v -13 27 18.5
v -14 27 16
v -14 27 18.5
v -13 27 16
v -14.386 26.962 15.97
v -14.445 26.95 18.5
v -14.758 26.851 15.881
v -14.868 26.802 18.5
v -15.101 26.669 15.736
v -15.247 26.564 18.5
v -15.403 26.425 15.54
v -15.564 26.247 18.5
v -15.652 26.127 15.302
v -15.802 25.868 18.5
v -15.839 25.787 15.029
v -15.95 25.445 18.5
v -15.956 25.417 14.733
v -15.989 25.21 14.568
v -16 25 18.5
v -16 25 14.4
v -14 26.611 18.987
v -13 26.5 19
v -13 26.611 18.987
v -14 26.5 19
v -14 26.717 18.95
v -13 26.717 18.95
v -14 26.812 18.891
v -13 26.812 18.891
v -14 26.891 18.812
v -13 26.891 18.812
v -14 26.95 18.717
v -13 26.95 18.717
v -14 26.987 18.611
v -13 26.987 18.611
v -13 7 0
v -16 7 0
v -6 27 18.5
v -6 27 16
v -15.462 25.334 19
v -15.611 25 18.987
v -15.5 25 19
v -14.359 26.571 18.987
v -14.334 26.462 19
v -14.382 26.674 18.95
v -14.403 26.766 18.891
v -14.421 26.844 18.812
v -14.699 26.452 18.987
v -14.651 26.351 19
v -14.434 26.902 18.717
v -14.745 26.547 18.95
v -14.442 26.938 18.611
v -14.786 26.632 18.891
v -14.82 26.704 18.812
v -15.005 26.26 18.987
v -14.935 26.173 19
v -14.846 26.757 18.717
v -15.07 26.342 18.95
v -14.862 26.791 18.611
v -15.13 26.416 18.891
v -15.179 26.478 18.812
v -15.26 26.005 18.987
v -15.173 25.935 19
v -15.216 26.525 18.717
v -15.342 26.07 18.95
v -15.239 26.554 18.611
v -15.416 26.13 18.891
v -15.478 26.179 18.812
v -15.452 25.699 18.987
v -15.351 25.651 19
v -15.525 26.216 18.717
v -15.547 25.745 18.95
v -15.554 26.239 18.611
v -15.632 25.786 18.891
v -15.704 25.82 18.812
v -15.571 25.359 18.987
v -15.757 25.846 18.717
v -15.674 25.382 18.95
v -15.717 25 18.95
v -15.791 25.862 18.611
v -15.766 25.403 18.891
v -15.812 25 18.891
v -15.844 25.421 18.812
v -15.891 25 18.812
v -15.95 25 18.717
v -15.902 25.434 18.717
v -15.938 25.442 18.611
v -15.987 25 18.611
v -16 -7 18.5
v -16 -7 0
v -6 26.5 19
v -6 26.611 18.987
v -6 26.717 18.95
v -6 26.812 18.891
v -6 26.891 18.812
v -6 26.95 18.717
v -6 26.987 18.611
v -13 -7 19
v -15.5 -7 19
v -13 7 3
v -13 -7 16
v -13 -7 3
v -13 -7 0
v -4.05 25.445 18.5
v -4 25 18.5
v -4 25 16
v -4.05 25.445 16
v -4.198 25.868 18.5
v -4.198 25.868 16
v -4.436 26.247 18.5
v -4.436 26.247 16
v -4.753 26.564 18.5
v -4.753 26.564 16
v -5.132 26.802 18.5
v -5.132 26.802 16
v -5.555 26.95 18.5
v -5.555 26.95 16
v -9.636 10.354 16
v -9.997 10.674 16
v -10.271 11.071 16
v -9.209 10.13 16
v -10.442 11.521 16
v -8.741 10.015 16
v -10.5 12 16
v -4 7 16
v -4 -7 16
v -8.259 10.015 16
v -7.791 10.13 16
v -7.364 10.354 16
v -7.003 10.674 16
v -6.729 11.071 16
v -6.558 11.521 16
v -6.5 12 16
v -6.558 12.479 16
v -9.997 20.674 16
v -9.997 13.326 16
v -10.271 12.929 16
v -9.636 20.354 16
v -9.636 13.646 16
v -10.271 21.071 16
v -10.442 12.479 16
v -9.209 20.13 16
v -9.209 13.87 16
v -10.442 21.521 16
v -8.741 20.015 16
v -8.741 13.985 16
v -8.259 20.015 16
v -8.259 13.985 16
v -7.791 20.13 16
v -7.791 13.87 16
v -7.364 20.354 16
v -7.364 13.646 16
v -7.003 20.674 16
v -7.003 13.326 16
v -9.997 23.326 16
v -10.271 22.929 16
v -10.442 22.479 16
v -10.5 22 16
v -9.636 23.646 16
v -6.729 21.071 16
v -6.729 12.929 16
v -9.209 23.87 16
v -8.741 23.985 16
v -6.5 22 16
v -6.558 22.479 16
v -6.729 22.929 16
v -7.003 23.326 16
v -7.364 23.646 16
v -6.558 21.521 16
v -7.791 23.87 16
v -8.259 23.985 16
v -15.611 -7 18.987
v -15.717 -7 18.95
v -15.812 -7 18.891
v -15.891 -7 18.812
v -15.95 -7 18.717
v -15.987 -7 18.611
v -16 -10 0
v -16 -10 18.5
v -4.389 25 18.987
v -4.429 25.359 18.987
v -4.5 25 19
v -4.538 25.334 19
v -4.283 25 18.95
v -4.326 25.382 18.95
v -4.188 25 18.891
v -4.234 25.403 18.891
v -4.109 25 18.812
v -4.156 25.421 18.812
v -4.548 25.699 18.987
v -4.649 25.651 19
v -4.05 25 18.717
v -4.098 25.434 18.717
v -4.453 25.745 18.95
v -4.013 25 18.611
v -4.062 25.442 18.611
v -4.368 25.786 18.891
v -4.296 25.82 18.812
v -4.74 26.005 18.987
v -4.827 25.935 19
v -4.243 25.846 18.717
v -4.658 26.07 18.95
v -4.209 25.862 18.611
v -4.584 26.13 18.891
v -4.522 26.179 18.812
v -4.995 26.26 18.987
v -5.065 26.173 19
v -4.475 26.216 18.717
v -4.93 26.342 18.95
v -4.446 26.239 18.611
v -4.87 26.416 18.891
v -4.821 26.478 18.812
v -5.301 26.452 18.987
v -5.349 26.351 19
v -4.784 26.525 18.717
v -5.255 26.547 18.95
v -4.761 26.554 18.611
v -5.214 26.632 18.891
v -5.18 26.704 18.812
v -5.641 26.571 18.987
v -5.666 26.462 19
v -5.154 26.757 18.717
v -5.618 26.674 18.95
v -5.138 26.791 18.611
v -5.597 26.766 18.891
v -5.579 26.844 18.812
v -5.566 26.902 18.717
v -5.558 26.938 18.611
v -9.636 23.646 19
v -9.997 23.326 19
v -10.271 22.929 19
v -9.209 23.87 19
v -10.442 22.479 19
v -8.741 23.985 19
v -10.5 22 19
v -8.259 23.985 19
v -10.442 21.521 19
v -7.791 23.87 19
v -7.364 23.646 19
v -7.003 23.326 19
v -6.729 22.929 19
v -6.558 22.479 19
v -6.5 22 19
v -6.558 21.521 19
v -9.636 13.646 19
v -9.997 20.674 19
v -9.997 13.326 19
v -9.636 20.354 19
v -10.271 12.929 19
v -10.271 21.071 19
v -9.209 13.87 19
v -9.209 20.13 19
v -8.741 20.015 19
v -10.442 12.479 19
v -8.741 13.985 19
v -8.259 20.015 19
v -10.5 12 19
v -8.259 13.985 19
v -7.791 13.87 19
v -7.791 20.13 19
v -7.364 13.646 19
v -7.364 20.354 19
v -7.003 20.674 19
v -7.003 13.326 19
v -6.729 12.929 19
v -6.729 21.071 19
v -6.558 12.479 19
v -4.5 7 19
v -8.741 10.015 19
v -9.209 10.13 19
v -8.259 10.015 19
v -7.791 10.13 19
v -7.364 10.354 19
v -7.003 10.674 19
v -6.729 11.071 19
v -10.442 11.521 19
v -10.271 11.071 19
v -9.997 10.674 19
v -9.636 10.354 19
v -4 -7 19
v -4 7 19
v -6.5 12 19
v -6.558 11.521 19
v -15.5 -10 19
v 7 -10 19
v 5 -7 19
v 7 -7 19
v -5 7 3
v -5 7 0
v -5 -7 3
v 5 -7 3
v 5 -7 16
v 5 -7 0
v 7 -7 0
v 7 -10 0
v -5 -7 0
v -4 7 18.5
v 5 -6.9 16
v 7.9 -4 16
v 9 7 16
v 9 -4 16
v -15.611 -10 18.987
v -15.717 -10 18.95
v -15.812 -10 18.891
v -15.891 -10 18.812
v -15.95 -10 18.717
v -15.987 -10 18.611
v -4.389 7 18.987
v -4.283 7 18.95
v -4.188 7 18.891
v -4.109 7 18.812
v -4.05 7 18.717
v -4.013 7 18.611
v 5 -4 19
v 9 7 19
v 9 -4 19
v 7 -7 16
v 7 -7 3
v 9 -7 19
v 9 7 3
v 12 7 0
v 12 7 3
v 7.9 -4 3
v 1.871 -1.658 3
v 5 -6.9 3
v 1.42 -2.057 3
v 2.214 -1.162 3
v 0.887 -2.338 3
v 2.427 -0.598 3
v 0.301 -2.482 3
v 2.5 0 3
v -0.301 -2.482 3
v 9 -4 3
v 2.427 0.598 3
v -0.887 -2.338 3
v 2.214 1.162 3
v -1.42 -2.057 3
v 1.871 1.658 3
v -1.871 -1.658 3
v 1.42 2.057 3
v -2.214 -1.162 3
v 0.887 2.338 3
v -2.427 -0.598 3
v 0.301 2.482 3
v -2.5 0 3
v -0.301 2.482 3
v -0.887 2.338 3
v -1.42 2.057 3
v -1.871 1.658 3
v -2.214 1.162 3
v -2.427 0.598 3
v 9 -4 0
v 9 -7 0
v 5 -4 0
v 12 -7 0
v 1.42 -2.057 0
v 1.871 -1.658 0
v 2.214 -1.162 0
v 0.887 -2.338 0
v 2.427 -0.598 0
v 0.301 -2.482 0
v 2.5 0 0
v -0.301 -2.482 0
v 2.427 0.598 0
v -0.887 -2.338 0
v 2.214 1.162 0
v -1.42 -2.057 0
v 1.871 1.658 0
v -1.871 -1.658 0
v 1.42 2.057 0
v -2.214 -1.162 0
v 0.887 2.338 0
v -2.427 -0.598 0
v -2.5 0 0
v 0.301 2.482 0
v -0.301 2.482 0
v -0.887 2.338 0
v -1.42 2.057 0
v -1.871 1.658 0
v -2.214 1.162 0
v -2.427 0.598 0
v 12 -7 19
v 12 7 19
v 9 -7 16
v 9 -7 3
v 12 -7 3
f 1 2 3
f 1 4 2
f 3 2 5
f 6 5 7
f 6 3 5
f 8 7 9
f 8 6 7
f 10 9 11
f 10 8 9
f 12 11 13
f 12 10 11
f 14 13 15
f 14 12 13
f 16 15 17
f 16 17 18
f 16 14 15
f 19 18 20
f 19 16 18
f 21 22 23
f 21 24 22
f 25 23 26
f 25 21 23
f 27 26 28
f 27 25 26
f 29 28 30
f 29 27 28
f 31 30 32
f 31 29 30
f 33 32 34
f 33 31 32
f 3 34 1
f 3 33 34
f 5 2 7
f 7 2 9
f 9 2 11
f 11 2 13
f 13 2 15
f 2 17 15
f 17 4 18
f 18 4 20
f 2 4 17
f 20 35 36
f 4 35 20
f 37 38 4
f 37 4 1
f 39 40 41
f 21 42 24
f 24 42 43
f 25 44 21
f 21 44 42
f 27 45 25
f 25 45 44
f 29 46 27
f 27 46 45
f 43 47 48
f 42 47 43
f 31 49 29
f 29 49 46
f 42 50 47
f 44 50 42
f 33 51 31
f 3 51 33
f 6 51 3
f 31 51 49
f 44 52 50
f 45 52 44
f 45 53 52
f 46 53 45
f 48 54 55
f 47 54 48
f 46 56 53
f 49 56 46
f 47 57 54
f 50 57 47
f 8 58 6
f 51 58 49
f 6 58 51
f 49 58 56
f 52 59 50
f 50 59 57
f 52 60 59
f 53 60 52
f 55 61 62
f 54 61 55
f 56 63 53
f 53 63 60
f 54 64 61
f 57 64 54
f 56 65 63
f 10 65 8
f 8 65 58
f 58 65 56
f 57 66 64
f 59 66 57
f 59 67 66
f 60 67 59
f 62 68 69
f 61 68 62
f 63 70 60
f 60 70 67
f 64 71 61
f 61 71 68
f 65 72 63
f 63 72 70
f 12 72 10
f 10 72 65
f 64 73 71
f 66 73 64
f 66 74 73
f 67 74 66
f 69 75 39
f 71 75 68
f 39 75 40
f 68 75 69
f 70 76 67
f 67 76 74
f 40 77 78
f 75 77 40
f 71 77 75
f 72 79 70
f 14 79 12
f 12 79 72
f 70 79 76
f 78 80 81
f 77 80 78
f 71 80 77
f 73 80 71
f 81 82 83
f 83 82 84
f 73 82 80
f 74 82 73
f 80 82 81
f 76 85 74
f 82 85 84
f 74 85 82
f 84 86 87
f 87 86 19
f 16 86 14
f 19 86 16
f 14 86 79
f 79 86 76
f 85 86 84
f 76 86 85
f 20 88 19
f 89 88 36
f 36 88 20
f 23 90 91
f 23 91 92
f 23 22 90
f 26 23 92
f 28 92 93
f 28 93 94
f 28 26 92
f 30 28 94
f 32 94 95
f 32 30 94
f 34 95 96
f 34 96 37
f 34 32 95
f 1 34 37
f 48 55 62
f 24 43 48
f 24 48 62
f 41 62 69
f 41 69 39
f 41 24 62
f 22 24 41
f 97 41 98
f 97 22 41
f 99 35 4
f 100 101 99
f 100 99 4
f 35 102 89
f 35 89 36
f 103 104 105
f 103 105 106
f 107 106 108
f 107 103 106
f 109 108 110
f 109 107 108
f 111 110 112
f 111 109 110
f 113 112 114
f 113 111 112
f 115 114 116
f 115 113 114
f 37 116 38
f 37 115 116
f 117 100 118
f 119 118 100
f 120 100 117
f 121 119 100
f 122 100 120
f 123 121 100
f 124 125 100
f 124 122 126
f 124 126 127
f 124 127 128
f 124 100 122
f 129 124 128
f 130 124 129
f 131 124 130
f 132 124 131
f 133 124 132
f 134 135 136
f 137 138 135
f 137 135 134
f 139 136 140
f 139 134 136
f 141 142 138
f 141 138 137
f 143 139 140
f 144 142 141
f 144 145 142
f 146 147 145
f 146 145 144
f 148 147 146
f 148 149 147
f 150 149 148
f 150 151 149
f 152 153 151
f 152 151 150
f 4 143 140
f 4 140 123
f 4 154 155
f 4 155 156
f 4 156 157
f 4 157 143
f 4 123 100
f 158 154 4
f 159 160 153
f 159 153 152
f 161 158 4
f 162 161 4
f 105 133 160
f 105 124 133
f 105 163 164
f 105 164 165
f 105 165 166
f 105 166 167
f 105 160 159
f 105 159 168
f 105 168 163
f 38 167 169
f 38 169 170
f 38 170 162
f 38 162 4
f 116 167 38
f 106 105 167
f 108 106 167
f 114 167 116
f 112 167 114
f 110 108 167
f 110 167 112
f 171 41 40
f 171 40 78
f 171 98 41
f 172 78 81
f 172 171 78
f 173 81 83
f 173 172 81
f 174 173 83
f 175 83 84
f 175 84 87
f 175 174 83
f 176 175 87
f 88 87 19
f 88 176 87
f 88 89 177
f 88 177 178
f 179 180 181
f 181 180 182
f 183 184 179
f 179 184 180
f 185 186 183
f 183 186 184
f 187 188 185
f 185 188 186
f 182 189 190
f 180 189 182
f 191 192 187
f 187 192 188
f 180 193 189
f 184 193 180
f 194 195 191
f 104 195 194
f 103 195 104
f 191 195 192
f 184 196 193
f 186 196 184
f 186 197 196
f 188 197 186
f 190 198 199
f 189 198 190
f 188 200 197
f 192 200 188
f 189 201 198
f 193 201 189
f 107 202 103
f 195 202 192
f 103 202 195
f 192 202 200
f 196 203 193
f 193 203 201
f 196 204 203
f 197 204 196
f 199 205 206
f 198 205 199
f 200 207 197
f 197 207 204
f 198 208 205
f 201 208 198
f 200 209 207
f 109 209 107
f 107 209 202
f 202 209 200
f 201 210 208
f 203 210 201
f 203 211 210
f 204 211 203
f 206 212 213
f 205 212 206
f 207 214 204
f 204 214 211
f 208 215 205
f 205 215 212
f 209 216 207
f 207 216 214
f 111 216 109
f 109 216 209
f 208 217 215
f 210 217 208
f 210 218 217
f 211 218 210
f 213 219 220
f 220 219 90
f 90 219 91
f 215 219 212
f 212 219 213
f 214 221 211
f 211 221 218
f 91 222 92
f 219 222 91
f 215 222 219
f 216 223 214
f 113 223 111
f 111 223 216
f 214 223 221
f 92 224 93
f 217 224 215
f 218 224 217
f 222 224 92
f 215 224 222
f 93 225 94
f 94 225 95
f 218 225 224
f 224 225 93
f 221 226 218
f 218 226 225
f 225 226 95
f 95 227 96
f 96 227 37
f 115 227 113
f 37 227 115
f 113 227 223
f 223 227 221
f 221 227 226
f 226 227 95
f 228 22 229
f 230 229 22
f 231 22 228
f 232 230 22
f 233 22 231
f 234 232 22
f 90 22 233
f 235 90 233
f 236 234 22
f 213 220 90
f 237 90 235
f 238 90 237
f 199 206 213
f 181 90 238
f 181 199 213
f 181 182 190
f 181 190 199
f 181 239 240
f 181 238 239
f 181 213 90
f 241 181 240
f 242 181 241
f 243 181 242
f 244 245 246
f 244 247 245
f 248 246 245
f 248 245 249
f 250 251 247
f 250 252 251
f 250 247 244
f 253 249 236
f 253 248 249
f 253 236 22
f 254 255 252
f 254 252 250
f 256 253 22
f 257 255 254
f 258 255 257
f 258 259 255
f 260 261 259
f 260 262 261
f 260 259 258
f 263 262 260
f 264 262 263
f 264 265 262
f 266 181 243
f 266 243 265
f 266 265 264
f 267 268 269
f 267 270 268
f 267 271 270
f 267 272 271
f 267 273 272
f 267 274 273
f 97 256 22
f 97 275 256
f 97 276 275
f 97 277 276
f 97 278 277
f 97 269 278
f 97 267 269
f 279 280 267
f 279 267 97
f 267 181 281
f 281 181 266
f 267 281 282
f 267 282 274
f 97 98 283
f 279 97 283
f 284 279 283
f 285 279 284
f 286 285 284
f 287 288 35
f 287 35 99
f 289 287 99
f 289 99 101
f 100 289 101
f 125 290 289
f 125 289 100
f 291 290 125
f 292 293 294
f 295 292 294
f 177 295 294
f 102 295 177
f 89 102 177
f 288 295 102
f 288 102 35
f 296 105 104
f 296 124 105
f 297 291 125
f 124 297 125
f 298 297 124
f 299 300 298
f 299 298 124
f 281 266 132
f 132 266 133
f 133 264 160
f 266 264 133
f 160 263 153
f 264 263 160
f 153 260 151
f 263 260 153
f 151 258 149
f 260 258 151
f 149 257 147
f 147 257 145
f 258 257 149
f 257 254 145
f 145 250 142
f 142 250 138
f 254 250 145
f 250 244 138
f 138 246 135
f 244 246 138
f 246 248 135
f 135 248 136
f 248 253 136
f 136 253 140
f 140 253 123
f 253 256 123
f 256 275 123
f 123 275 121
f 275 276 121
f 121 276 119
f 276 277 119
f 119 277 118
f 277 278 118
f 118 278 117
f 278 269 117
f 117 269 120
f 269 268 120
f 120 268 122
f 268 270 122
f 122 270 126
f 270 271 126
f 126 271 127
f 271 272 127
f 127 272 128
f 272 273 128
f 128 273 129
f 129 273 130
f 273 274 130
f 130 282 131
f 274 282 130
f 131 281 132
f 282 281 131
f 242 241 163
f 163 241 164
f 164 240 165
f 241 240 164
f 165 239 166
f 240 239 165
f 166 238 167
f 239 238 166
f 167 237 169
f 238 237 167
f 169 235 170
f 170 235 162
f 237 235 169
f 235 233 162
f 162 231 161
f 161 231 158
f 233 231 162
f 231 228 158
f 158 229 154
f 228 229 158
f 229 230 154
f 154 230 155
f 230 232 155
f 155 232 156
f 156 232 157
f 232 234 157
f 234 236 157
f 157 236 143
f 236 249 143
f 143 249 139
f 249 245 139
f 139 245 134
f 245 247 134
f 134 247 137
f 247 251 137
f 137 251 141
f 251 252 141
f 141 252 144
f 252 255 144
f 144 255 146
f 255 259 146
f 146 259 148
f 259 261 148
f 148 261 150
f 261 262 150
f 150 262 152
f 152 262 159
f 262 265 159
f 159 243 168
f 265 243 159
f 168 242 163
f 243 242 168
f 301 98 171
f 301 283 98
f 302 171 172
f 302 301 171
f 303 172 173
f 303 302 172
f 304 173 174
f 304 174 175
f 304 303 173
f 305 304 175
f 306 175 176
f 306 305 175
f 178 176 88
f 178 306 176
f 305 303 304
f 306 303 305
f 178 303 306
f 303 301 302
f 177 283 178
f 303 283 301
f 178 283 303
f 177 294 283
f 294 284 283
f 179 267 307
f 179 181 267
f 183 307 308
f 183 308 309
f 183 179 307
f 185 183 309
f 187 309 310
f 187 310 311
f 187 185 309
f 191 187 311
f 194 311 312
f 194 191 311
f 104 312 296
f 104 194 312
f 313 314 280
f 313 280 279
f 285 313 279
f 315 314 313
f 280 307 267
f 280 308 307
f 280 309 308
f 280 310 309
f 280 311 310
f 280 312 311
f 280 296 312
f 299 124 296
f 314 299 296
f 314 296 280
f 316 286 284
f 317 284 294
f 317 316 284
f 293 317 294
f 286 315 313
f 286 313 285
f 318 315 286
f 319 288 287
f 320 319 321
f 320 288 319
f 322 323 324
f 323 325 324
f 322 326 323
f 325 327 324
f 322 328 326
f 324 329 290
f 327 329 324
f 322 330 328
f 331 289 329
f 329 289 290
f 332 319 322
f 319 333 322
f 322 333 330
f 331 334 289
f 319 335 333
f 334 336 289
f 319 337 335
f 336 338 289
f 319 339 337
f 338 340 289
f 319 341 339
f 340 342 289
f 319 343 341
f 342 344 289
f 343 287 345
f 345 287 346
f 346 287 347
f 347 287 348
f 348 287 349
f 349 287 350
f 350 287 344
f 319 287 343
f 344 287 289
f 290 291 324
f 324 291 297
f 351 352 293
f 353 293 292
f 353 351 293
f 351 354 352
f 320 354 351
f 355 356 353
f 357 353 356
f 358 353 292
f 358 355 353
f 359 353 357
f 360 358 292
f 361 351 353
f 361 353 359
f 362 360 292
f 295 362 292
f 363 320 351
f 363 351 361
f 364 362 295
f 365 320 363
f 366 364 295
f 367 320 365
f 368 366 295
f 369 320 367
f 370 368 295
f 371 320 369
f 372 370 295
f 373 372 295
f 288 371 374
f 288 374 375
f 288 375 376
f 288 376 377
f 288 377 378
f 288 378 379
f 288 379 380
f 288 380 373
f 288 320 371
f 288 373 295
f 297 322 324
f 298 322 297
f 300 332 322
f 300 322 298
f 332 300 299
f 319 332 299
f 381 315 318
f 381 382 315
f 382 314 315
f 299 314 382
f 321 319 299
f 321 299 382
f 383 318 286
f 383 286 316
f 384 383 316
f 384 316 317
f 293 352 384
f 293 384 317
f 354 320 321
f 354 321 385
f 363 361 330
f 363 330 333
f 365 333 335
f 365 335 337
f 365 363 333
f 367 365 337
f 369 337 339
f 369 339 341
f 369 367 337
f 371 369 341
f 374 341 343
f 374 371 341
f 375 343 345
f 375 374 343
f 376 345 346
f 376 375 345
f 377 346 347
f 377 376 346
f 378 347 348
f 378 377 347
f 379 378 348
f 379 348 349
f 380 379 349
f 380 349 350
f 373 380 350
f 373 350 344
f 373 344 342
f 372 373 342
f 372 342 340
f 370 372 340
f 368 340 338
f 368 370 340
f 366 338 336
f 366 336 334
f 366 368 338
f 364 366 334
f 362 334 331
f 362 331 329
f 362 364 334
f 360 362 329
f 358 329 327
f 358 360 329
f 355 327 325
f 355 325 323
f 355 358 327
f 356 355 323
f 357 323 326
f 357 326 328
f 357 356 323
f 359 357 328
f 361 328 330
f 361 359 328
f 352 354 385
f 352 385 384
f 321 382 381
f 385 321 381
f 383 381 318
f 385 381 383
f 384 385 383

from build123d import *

# Parameters (mm, degrees)
SKETCH_W     = 17
SKETCH_H     = 14
SKETCH_R     = 2.5
PAD_DEPTH    = 3
SKETCH001_W  = 3
SKETCH001_H  = 14
PAD001_DEPTH = 16
SKETCH002_W  = 14
SKETCH002_H  = 3
PAD002_DEPTH = 13
SKETCH003_W  = 34
SKETCH003_H  = 3
PAD003_DEPTH = 9
SKETCH004_W  = 14
SKETCH004_H  = 3
PAD004_DEPTH = 8
SKETCH006_R  = 2
POCKET_DEPTH = 19.001
PAD005_DEPTH = 3
SKETCH008_W  = 23
SKETCH008_H  = 19
PAD006_DEPTH = 3
SKETCH009_W  = 3
SKETCH009_H  = 19
PAD007_DEPTH = 4
CHAMFER_SIZE = 2.9
FILLET_R     = 2
FILLET001_R  = 2
FILLET002_R  = 0.5


with BuildPart() as part:
    # Sketch → Pad (new body)
    with BuildSketch(Plane.XY):
        with Locations((3.5, 0)):
            Rectangle(SKETCH_W, SKETCH_H)
        Circle(SKETCH_R, mode=Mode.SUBTRACT)
    extrude(amount=PAD_DEPTH)

    # Sketch001 (on Face7 of Pad) → Pad001 (join)
    with BuildSketch(Plane.XY.offset(3)):
        with Locations((10.5, 0)):
            Rectangle(SKETCH001_W, SKETCH001_H)
    extrude(amount=PAD001_DEPTH)

    # Sketch002 (on Face10 of Pad001) → Pad002 (join)
    with BuildSketch(Plane(origin=(9, 0, 0), x_dir=(0, -1, 0), z_dir=(-1, 0, 0))):
        with Locations((0, 17.5)):
            Rectangle(SKETCH002_W, SKETCH002_H)
    extrude(amount=PAD002_DEPTH)

    # Sketch003 (on Face16 of Pad002) → Pad003 (join)
    with BuildSketch(Plane(origin=(-4, 0, 0), x_dir=(0, -1, 0), z_dir=(-1, 0, 0))):
        with Locations((-10, 17.5)):
            Rectangle(SKETCH003_W, SKETCH003_H)
    extrude(amount=PAD003_DEPTH)

    # Sketch004 (on Face2 of Pad003) → Pad004 (join)
    with BuildSketch(Plane(origin=(-5, 0, 0), x_dir=(0, -1, 0), z_dir=(-1, 0, 0))):
        with Locations((0, 1.5)):
            Rectangle(SKETCH004_W, SKETCH004_H)
    extrude(amount=PAD004_DEPTH)

    # Sketch006 → Pocket (cut, through all)
    with BuildSketch(Plane.XY.offset(19)):
        with Locations((-8.5, 22)):
            Circle(SKETCH006_R)
        with Locations((-8.5, 12)):
            Circle(SKETCH006_R)
    extrude(amount=-POCKET_DEPTH, mode=Mode.SUBTRACT)

    # Sketch007 (on Face26 of Pocket) → Pad005 (join)
    with BuildSketch(Plane(origin=(-13, 0, 0), x_dir=(0, -1, 0), z_dir=(-1, 0, 0))):
        Polygon((-27, 19), (7, 19), (7, 0), (-7, 0), (-27, 16), align=None)
    extrude(amount=PAD005_DEPTH)

    # Sketch008 (on Face10 of Pad005) → Pad006 (join)
    with BuildSketch(Plane.XZ.offset(7)):
        with Locations((-4.5, 9.5)):
            Rectangle(SKETCH008_W, SKETCH008_H)
    extrude(amount=PAD006_DEPTH)

    # Sketch009 (on Face15 of Pad006) → Pad007 (join)
    with BuildSketch(Plane(origin=(9, 0, 0), x_dir=(0, -1, 0), z_dir=(-1, 0, 0))):
        with Locations((5.5, 9.5)):
            Rectangle(SKETCH009_W, SKETCH009_H)
    extrude(amount=PAD007_DEPTH)

    # Chamfer
    chamfer_edges = [part.edges().sort_by_distance(p)[0] for p in [
        (5, -4, 9.5),
    ]]
    chamfer(chamfer_edges, length=CHAMFER_SIZE)

    # Fillet
    fillet_edges = [part.edges().sort_by_distance(p)[0] for p in [
        (-4, 27, 17.5),
    ]]
    fillet(fillet_edges, radius=FILLET_R)

    # Fillet001
    fillet001_edges = [part.edges().sort_by_distance(p)[0] for p in [
        (-16, 27, 17.5),
    ]]
    fillet(fillet001_edges, radius=FILLET001_R)

    # Fillet002
    fillet002_edges = [part.edges().sort_by_distance(p)[0] for p in [
        (-16, 9, 19),
    ]]
    fillet(fillet002_edges, radius=FILLET002_R)


solid = part.part
